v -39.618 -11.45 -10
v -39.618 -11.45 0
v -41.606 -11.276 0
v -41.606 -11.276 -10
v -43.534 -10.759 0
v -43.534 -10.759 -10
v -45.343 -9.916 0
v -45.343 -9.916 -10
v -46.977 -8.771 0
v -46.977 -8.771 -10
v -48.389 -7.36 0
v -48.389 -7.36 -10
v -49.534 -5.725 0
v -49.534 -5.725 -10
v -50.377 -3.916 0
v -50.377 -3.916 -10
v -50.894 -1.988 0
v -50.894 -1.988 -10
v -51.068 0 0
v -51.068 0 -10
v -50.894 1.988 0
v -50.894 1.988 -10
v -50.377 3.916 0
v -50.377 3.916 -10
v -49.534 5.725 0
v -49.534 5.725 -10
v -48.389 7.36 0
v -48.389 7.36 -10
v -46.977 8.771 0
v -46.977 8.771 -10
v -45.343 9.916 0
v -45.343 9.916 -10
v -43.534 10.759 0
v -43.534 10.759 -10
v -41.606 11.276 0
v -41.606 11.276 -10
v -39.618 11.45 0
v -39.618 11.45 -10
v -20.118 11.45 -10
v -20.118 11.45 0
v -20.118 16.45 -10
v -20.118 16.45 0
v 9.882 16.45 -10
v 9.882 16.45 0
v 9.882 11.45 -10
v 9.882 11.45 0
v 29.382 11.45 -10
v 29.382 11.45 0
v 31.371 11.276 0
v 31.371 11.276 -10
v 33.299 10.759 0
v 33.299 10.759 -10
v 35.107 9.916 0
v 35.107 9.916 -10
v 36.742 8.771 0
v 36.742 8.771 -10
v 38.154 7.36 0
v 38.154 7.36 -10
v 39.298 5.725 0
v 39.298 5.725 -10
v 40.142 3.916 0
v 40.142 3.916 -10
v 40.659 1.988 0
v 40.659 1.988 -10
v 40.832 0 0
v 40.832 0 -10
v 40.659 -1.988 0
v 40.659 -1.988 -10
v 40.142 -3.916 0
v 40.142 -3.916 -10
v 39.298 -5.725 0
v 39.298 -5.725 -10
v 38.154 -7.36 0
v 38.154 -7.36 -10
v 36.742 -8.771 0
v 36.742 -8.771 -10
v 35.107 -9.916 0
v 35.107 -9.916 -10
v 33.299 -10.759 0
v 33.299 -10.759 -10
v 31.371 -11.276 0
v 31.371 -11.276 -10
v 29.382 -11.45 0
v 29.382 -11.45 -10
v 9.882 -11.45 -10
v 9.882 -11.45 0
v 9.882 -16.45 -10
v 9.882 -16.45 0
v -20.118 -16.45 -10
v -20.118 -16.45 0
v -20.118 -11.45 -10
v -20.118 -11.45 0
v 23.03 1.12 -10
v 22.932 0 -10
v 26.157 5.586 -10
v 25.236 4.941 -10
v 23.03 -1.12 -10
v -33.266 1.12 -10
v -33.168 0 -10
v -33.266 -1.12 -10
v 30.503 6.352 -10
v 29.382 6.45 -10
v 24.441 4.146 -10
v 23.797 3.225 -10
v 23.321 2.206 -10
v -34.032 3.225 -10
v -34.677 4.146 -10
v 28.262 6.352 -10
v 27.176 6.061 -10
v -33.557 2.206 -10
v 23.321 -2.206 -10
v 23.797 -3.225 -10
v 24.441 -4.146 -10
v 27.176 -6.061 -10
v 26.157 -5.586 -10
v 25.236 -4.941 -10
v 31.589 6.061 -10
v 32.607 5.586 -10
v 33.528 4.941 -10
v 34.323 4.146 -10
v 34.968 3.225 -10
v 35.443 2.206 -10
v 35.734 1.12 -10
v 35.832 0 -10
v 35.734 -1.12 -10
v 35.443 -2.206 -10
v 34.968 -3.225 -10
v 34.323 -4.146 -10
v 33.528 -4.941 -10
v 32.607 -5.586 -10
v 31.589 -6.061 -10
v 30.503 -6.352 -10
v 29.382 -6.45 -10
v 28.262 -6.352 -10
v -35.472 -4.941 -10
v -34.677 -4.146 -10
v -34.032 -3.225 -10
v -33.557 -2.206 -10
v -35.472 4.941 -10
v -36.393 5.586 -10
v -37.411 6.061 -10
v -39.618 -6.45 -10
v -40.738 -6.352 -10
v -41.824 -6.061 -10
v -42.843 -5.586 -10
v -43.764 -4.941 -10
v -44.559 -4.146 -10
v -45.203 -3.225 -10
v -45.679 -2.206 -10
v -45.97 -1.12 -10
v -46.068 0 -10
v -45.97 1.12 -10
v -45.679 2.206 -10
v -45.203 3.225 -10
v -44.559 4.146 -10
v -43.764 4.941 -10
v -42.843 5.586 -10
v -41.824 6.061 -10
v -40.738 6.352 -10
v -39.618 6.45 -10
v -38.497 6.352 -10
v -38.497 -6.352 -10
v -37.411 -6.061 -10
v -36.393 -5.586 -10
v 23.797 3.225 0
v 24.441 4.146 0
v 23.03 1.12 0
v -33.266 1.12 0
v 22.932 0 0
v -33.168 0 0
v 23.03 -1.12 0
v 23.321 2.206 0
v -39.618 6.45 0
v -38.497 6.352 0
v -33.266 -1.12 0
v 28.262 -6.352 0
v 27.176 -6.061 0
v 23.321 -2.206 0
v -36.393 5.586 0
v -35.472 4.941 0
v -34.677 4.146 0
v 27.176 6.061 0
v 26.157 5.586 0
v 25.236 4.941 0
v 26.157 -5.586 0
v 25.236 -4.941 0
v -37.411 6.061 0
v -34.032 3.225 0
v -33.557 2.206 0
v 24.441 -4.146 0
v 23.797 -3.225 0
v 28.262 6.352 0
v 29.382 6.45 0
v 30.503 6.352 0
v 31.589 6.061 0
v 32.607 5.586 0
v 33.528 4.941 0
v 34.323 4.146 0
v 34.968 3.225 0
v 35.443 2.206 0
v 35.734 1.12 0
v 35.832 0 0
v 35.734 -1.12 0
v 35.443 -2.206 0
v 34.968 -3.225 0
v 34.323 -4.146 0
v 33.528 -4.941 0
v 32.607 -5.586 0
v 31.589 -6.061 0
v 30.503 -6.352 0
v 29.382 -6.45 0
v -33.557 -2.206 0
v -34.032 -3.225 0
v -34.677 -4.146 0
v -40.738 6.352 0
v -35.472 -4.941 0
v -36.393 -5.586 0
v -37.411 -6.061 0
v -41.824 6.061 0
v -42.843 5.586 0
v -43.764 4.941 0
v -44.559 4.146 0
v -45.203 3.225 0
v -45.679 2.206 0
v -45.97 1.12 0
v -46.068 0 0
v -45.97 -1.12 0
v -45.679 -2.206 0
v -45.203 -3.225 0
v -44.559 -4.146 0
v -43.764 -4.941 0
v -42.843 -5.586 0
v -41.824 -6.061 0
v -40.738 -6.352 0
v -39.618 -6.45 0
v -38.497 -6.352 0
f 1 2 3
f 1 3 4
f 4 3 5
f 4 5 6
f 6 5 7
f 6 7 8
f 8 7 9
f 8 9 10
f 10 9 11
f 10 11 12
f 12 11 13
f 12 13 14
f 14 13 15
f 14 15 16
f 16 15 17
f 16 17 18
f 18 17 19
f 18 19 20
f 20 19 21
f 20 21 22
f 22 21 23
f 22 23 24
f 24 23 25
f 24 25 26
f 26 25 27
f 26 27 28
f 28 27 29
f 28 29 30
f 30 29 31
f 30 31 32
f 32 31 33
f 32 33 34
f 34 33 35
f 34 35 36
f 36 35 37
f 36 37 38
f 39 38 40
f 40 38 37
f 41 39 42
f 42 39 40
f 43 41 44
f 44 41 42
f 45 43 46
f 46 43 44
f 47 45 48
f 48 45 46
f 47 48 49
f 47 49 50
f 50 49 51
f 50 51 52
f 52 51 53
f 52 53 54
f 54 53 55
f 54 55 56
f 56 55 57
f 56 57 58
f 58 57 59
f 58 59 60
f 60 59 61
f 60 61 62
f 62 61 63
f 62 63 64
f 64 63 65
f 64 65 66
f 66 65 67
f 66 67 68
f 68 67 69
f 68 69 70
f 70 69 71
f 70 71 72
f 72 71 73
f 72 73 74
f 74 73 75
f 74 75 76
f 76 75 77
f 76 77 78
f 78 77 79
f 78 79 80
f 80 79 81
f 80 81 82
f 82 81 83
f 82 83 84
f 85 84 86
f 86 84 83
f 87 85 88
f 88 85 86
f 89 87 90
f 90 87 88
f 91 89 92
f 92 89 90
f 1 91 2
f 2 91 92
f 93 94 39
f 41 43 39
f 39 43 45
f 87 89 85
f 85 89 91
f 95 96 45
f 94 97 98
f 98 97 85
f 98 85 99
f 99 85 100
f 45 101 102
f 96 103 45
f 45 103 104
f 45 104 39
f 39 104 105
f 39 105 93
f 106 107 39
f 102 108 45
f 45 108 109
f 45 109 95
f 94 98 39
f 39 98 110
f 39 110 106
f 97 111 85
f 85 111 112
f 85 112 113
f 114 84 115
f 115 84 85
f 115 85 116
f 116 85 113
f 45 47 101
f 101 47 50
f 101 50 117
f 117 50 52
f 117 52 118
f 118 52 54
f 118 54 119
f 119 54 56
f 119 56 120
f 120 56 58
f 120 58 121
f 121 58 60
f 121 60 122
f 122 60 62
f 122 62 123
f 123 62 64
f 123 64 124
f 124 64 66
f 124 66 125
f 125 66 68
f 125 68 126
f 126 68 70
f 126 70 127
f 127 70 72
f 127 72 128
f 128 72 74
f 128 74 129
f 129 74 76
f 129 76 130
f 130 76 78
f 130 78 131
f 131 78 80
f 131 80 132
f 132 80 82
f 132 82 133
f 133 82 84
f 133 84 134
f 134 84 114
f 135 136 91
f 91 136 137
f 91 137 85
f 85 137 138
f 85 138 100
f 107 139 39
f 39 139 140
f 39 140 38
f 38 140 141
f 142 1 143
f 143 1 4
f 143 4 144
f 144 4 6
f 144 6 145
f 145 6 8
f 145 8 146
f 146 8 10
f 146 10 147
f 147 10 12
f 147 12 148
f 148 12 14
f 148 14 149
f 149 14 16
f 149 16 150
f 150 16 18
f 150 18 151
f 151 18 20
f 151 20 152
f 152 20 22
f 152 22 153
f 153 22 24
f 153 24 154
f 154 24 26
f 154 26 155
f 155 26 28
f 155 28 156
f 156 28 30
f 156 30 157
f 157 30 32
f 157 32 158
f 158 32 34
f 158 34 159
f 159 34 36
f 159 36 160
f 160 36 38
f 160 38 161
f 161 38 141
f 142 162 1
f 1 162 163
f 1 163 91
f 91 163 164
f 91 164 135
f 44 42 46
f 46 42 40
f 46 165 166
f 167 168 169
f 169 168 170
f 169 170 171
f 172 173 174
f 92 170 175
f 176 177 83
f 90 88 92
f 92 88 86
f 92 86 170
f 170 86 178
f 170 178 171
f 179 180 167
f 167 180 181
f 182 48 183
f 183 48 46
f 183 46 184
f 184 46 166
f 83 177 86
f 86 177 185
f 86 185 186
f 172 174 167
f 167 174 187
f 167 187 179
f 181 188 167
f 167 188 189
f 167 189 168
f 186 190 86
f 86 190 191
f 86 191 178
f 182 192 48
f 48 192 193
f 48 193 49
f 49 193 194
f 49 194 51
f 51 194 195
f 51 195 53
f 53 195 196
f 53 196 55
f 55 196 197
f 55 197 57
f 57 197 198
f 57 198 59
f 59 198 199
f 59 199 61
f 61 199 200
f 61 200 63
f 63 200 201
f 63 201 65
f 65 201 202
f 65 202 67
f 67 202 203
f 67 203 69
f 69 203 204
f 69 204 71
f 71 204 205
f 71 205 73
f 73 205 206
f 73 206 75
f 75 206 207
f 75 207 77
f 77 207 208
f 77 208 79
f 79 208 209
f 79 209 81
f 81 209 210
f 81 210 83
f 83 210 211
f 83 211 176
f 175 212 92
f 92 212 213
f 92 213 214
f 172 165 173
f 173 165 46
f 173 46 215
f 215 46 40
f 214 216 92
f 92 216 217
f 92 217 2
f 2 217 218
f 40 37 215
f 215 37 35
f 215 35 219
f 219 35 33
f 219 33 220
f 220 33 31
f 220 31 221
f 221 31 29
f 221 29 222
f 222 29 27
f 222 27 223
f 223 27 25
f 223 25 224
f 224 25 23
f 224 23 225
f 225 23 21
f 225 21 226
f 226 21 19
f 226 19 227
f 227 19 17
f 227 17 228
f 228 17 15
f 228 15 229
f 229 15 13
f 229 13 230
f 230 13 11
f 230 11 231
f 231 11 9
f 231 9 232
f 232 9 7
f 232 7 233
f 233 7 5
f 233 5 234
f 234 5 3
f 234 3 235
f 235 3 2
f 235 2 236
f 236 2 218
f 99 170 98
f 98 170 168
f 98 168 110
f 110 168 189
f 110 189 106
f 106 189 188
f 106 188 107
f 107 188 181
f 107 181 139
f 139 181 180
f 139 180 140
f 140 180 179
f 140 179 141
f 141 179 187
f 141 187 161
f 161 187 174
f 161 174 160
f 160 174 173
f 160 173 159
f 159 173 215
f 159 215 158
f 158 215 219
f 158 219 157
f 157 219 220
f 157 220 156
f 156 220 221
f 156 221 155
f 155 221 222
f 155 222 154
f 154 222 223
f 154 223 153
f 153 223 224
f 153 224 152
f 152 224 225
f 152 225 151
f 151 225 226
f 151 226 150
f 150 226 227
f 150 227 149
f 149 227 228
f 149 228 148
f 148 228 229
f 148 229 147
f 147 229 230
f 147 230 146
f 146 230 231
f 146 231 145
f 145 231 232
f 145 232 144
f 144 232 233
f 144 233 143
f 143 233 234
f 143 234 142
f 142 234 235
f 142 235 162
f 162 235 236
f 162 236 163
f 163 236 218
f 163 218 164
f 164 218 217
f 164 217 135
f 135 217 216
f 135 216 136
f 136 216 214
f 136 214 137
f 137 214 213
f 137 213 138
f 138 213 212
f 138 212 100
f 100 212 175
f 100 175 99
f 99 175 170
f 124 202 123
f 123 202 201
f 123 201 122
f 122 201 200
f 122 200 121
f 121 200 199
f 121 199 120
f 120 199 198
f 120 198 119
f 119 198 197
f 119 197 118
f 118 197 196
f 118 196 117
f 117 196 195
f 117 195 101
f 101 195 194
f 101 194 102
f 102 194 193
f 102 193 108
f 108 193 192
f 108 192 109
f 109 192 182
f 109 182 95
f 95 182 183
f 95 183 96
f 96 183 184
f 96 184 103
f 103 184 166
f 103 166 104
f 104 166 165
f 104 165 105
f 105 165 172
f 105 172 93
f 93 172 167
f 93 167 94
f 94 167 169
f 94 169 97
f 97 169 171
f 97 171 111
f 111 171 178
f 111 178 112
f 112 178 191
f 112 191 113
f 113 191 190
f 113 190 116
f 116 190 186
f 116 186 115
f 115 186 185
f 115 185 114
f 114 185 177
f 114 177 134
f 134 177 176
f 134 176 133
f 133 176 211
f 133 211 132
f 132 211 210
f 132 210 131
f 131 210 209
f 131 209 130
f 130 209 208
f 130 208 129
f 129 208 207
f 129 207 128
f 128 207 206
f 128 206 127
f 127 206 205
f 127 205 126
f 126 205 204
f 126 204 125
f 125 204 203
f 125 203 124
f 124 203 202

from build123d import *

# Parameters (mm, degrees)
SKETCH1_R           = 6.45
BOSS_EXTRUDE1_DEPTH = 10


with BuildPart() as part:
    # Sketch1 → Boss-Extrude1 (new body)
    with BuildSketch(Plane.XY):
        with BuildLine():
            Line((-39.617521433, 11.45), (-20.117521433, 11.45))
            Line((-20.117521433, 11.45), (-20.117521433, 16.45))
            Line((-20.117521433, 16.45), (9.882478567, 16.45))
            Line((9.882478567, 16.45), (9.882478567, 11.45))
            Line((9.882478567, 11.45), (29.382478567, 11.45))
            ThreePointArc((29.382478567, 11.45), (40.832478567, 0), (29.382478567, -11.45))
            Line((29.382478567, -11.45), (9.882478567, -11.45))
            Line((9.882478567, -11.45), (9.882478567, -16.45))
            Line((9.882478567, -16.45), (-20.117521433, -16.45))
            Line((-20.117521433, -16.45), (-20.117521433, -11.45))
            Line((-20.117521433, -11.45), (-39.617521433, -11.45))
            ThreePointArc((-39.617521433, -11.45), (-51.067521433, 0), (-39.617521433, 11.45))
        make_face()
        with Locations((-39.617521433, 0)):
            Circle(SKETCH1_R, mode=Mode.SUBTRACT)
        with Locations(Location((29.382478567, 0, 0), (0, 0, 180))):
            Circle(SKETCH1_R, mode=Mode.SUBTRACT)
    extrude(amount=-BOSS_EXTRUDE1_DEPTH)


solid = part.part
